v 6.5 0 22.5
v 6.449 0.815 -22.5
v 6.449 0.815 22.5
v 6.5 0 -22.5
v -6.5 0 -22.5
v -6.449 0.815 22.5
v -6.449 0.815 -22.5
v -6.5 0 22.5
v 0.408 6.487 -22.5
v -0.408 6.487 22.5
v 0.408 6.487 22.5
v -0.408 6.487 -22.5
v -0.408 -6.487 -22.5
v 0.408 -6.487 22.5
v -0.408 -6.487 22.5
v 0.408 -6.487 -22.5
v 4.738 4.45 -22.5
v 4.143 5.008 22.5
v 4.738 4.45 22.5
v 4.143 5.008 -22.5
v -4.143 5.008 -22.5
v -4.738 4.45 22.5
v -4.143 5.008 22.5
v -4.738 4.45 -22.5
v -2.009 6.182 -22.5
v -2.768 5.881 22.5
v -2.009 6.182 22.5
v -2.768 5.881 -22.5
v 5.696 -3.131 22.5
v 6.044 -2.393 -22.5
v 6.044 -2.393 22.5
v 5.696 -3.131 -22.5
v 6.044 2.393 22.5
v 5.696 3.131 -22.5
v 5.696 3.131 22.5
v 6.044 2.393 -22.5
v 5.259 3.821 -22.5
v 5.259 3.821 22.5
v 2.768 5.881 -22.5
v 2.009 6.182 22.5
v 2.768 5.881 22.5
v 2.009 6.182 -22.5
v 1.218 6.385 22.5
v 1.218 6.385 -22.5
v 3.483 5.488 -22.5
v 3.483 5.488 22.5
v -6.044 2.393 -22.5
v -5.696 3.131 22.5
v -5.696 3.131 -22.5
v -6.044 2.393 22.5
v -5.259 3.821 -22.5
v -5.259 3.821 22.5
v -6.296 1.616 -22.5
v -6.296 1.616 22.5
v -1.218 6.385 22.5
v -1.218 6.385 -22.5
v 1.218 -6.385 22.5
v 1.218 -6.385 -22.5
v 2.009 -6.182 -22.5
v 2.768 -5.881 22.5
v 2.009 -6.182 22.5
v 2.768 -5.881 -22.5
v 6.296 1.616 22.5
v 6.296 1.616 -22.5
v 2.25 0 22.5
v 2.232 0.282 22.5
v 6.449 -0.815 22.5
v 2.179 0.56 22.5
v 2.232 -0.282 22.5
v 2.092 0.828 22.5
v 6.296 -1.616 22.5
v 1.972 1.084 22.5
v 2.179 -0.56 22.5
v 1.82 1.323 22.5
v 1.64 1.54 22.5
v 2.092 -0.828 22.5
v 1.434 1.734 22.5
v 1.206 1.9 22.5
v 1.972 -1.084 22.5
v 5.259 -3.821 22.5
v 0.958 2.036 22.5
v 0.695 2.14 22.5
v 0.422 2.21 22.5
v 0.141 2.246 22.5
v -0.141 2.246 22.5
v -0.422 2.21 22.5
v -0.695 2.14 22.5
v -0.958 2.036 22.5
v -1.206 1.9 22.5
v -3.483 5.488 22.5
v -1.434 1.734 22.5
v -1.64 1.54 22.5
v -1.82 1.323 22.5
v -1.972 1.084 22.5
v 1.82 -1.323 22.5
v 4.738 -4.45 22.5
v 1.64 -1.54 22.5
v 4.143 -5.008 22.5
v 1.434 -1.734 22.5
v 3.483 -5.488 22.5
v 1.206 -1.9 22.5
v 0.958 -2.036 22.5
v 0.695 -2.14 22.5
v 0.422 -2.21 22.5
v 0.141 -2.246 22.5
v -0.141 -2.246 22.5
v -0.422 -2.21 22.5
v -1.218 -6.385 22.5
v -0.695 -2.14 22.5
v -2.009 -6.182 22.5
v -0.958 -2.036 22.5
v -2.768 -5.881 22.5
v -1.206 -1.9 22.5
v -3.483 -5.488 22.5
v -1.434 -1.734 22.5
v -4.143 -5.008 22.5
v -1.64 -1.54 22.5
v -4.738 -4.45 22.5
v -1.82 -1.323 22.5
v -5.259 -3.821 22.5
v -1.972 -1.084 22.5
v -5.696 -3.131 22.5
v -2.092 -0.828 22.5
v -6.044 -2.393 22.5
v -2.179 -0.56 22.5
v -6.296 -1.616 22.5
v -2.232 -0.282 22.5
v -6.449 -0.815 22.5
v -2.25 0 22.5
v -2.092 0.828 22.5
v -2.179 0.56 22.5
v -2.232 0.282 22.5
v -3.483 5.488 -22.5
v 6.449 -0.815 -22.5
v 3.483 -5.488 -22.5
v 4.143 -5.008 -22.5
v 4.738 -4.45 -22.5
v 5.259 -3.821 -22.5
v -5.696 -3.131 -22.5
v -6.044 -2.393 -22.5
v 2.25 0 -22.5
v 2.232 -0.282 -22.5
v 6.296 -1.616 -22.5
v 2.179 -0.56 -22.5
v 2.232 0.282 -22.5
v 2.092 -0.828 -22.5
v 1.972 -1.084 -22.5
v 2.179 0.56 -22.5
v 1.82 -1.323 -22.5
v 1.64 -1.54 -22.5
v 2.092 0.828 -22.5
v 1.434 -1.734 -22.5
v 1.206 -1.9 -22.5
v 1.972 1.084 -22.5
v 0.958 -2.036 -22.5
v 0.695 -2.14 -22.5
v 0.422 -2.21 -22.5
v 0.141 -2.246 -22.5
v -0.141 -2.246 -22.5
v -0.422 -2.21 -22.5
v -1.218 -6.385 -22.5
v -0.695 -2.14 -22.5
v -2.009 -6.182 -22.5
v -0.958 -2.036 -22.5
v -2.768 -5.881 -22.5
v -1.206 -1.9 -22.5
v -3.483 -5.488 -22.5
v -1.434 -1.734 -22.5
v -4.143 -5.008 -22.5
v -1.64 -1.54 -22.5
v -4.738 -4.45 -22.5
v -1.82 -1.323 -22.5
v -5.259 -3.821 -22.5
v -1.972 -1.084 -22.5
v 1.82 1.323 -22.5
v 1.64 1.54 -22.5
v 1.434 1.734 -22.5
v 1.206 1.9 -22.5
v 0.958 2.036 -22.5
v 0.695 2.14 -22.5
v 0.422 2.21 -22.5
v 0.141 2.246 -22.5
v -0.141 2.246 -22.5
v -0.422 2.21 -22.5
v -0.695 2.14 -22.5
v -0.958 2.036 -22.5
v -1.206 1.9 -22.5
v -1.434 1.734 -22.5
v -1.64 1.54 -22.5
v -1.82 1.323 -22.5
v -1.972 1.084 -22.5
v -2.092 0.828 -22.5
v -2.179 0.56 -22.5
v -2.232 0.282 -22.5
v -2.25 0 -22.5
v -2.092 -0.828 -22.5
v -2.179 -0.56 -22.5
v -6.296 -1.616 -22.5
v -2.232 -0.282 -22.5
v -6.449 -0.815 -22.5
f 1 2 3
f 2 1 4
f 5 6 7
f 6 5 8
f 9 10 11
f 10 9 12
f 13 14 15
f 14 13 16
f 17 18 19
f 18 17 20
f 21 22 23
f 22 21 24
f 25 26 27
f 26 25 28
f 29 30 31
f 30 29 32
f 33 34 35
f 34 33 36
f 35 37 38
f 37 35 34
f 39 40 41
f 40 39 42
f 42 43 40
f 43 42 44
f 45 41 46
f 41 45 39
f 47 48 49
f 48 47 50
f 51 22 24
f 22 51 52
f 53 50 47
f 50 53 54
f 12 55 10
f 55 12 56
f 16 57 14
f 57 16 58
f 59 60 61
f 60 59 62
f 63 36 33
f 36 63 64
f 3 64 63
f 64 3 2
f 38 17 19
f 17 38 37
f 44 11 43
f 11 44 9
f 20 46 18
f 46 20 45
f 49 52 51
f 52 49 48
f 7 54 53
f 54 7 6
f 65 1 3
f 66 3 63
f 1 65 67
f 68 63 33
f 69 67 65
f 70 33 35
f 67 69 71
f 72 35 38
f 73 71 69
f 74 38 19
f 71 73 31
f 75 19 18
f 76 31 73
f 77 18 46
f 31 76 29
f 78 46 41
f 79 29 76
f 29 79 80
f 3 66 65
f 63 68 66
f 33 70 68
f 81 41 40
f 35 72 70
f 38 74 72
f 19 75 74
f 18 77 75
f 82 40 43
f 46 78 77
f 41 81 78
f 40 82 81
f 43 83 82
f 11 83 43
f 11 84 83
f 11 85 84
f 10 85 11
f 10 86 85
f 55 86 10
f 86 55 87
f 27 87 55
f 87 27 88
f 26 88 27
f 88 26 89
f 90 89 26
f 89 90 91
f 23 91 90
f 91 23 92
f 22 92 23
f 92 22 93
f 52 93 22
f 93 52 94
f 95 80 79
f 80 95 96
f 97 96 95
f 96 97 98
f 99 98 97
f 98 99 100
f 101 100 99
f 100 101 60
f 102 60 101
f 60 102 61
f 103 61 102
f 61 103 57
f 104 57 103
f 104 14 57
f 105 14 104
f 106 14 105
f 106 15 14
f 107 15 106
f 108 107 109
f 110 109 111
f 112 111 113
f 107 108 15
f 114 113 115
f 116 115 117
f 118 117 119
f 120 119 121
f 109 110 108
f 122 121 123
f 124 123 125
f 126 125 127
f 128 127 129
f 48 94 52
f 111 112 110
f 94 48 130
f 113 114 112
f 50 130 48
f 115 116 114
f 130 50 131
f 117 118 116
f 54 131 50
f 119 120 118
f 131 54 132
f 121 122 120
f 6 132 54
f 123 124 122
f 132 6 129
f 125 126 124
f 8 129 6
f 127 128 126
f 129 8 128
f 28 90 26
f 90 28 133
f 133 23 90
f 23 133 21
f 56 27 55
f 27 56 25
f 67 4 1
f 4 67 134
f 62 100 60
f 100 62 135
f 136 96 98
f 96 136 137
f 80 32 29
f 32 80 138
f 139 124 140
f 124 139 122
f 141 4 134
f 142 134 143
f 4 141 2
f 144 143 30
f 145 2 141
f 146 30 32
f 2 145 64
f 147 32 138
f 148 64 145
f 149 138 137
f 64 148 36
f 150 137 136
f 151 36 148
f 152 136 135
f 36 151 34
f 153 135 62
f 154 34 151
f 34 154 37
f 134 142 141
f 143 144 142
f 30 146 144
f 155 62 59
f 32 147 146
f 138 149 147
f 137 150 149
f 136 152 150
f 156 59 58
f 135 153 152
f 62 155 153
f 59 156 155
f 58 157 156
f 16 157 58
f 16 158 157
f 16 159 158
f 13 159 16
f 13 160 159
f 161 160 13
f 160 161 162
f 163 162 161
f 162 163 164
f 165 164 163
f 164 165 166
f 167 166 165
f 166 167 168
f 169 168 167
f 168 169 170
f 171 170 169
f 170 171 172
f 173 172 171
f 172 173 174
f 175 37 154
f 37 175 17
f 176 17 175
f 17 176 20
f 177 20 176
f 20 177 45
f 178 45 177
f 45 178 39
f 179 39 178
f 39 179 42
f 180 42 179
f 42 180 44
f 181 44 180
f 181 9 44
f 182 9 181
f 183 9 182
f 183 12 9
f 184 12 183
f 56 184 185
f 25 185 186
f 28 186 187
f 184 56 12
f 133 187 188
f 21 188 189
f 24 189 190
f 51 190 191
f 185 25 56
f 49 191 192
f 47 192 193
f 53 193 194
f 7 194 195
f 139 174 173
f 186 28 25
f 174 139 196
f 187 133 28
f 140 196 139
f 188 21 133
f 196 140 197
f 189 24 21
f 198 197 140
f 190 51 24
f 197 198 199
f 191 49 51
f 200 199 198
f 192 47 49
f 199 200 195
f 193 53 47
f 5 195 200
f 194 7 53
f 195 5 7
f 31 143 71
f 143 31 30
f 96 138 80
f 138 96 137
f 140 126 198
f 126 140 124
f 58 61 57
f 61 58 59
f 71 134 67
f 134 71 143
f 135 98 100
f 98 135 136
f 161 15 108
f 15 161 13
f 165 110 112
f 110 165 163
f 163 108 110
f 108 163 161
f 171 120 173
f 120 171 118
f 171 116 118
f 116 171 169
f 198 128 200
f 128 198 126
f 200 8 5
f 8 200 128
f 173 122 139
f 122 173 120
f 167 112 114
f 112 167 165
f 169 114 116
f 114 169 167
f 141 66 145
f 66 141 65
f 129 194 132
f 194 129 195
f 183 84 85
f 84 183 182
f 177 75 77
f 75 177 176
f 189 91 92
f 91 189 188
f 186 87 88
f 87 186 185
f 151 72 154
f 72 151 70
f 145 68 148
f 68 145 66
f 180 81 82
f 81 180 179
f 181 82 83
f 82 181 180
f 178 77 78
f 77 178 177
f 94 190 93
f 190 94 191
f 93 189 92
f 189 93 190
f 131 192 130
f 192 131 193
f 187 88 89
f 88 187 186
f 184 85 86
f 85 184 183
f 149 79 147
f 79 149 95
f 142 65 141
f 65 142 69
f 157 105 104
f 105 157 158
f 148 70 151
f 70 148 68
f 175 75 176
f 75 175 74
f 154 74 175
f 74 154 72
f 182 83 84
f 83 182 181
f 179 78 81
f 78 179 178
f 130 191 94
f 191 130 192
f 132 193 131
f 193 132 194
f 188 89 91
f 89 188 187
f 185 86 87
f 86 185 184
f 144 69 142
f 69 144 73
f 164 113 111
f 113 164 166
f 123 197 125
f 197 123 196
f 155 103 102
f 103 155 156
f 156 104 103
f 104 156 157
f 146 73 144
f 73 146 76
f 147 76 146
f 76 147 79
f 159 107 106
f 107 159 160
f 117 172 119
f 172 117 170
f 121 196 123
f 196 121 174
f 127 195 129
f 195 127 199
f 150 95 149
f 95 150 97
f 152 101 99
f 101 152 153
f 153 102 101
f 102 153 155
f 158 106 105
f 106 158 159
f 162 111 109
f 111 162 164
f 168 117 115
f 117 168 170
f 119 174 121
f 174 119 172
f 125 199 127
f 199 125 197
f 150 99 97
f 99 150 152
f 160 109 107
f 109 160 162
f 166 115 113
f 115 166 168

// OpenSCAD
$fn = 50;


difference() {
	union() {
		translate(v = [0, 0, -22.5000000000]) {
			cylinder(h = 45, r = 6.5000000000);
		}
	}
	union() {
		translate(v = [0, 0, -100.0000000000]) {
			cylinder(h = 200, r = 2.2500000000);
		}
	}
}
